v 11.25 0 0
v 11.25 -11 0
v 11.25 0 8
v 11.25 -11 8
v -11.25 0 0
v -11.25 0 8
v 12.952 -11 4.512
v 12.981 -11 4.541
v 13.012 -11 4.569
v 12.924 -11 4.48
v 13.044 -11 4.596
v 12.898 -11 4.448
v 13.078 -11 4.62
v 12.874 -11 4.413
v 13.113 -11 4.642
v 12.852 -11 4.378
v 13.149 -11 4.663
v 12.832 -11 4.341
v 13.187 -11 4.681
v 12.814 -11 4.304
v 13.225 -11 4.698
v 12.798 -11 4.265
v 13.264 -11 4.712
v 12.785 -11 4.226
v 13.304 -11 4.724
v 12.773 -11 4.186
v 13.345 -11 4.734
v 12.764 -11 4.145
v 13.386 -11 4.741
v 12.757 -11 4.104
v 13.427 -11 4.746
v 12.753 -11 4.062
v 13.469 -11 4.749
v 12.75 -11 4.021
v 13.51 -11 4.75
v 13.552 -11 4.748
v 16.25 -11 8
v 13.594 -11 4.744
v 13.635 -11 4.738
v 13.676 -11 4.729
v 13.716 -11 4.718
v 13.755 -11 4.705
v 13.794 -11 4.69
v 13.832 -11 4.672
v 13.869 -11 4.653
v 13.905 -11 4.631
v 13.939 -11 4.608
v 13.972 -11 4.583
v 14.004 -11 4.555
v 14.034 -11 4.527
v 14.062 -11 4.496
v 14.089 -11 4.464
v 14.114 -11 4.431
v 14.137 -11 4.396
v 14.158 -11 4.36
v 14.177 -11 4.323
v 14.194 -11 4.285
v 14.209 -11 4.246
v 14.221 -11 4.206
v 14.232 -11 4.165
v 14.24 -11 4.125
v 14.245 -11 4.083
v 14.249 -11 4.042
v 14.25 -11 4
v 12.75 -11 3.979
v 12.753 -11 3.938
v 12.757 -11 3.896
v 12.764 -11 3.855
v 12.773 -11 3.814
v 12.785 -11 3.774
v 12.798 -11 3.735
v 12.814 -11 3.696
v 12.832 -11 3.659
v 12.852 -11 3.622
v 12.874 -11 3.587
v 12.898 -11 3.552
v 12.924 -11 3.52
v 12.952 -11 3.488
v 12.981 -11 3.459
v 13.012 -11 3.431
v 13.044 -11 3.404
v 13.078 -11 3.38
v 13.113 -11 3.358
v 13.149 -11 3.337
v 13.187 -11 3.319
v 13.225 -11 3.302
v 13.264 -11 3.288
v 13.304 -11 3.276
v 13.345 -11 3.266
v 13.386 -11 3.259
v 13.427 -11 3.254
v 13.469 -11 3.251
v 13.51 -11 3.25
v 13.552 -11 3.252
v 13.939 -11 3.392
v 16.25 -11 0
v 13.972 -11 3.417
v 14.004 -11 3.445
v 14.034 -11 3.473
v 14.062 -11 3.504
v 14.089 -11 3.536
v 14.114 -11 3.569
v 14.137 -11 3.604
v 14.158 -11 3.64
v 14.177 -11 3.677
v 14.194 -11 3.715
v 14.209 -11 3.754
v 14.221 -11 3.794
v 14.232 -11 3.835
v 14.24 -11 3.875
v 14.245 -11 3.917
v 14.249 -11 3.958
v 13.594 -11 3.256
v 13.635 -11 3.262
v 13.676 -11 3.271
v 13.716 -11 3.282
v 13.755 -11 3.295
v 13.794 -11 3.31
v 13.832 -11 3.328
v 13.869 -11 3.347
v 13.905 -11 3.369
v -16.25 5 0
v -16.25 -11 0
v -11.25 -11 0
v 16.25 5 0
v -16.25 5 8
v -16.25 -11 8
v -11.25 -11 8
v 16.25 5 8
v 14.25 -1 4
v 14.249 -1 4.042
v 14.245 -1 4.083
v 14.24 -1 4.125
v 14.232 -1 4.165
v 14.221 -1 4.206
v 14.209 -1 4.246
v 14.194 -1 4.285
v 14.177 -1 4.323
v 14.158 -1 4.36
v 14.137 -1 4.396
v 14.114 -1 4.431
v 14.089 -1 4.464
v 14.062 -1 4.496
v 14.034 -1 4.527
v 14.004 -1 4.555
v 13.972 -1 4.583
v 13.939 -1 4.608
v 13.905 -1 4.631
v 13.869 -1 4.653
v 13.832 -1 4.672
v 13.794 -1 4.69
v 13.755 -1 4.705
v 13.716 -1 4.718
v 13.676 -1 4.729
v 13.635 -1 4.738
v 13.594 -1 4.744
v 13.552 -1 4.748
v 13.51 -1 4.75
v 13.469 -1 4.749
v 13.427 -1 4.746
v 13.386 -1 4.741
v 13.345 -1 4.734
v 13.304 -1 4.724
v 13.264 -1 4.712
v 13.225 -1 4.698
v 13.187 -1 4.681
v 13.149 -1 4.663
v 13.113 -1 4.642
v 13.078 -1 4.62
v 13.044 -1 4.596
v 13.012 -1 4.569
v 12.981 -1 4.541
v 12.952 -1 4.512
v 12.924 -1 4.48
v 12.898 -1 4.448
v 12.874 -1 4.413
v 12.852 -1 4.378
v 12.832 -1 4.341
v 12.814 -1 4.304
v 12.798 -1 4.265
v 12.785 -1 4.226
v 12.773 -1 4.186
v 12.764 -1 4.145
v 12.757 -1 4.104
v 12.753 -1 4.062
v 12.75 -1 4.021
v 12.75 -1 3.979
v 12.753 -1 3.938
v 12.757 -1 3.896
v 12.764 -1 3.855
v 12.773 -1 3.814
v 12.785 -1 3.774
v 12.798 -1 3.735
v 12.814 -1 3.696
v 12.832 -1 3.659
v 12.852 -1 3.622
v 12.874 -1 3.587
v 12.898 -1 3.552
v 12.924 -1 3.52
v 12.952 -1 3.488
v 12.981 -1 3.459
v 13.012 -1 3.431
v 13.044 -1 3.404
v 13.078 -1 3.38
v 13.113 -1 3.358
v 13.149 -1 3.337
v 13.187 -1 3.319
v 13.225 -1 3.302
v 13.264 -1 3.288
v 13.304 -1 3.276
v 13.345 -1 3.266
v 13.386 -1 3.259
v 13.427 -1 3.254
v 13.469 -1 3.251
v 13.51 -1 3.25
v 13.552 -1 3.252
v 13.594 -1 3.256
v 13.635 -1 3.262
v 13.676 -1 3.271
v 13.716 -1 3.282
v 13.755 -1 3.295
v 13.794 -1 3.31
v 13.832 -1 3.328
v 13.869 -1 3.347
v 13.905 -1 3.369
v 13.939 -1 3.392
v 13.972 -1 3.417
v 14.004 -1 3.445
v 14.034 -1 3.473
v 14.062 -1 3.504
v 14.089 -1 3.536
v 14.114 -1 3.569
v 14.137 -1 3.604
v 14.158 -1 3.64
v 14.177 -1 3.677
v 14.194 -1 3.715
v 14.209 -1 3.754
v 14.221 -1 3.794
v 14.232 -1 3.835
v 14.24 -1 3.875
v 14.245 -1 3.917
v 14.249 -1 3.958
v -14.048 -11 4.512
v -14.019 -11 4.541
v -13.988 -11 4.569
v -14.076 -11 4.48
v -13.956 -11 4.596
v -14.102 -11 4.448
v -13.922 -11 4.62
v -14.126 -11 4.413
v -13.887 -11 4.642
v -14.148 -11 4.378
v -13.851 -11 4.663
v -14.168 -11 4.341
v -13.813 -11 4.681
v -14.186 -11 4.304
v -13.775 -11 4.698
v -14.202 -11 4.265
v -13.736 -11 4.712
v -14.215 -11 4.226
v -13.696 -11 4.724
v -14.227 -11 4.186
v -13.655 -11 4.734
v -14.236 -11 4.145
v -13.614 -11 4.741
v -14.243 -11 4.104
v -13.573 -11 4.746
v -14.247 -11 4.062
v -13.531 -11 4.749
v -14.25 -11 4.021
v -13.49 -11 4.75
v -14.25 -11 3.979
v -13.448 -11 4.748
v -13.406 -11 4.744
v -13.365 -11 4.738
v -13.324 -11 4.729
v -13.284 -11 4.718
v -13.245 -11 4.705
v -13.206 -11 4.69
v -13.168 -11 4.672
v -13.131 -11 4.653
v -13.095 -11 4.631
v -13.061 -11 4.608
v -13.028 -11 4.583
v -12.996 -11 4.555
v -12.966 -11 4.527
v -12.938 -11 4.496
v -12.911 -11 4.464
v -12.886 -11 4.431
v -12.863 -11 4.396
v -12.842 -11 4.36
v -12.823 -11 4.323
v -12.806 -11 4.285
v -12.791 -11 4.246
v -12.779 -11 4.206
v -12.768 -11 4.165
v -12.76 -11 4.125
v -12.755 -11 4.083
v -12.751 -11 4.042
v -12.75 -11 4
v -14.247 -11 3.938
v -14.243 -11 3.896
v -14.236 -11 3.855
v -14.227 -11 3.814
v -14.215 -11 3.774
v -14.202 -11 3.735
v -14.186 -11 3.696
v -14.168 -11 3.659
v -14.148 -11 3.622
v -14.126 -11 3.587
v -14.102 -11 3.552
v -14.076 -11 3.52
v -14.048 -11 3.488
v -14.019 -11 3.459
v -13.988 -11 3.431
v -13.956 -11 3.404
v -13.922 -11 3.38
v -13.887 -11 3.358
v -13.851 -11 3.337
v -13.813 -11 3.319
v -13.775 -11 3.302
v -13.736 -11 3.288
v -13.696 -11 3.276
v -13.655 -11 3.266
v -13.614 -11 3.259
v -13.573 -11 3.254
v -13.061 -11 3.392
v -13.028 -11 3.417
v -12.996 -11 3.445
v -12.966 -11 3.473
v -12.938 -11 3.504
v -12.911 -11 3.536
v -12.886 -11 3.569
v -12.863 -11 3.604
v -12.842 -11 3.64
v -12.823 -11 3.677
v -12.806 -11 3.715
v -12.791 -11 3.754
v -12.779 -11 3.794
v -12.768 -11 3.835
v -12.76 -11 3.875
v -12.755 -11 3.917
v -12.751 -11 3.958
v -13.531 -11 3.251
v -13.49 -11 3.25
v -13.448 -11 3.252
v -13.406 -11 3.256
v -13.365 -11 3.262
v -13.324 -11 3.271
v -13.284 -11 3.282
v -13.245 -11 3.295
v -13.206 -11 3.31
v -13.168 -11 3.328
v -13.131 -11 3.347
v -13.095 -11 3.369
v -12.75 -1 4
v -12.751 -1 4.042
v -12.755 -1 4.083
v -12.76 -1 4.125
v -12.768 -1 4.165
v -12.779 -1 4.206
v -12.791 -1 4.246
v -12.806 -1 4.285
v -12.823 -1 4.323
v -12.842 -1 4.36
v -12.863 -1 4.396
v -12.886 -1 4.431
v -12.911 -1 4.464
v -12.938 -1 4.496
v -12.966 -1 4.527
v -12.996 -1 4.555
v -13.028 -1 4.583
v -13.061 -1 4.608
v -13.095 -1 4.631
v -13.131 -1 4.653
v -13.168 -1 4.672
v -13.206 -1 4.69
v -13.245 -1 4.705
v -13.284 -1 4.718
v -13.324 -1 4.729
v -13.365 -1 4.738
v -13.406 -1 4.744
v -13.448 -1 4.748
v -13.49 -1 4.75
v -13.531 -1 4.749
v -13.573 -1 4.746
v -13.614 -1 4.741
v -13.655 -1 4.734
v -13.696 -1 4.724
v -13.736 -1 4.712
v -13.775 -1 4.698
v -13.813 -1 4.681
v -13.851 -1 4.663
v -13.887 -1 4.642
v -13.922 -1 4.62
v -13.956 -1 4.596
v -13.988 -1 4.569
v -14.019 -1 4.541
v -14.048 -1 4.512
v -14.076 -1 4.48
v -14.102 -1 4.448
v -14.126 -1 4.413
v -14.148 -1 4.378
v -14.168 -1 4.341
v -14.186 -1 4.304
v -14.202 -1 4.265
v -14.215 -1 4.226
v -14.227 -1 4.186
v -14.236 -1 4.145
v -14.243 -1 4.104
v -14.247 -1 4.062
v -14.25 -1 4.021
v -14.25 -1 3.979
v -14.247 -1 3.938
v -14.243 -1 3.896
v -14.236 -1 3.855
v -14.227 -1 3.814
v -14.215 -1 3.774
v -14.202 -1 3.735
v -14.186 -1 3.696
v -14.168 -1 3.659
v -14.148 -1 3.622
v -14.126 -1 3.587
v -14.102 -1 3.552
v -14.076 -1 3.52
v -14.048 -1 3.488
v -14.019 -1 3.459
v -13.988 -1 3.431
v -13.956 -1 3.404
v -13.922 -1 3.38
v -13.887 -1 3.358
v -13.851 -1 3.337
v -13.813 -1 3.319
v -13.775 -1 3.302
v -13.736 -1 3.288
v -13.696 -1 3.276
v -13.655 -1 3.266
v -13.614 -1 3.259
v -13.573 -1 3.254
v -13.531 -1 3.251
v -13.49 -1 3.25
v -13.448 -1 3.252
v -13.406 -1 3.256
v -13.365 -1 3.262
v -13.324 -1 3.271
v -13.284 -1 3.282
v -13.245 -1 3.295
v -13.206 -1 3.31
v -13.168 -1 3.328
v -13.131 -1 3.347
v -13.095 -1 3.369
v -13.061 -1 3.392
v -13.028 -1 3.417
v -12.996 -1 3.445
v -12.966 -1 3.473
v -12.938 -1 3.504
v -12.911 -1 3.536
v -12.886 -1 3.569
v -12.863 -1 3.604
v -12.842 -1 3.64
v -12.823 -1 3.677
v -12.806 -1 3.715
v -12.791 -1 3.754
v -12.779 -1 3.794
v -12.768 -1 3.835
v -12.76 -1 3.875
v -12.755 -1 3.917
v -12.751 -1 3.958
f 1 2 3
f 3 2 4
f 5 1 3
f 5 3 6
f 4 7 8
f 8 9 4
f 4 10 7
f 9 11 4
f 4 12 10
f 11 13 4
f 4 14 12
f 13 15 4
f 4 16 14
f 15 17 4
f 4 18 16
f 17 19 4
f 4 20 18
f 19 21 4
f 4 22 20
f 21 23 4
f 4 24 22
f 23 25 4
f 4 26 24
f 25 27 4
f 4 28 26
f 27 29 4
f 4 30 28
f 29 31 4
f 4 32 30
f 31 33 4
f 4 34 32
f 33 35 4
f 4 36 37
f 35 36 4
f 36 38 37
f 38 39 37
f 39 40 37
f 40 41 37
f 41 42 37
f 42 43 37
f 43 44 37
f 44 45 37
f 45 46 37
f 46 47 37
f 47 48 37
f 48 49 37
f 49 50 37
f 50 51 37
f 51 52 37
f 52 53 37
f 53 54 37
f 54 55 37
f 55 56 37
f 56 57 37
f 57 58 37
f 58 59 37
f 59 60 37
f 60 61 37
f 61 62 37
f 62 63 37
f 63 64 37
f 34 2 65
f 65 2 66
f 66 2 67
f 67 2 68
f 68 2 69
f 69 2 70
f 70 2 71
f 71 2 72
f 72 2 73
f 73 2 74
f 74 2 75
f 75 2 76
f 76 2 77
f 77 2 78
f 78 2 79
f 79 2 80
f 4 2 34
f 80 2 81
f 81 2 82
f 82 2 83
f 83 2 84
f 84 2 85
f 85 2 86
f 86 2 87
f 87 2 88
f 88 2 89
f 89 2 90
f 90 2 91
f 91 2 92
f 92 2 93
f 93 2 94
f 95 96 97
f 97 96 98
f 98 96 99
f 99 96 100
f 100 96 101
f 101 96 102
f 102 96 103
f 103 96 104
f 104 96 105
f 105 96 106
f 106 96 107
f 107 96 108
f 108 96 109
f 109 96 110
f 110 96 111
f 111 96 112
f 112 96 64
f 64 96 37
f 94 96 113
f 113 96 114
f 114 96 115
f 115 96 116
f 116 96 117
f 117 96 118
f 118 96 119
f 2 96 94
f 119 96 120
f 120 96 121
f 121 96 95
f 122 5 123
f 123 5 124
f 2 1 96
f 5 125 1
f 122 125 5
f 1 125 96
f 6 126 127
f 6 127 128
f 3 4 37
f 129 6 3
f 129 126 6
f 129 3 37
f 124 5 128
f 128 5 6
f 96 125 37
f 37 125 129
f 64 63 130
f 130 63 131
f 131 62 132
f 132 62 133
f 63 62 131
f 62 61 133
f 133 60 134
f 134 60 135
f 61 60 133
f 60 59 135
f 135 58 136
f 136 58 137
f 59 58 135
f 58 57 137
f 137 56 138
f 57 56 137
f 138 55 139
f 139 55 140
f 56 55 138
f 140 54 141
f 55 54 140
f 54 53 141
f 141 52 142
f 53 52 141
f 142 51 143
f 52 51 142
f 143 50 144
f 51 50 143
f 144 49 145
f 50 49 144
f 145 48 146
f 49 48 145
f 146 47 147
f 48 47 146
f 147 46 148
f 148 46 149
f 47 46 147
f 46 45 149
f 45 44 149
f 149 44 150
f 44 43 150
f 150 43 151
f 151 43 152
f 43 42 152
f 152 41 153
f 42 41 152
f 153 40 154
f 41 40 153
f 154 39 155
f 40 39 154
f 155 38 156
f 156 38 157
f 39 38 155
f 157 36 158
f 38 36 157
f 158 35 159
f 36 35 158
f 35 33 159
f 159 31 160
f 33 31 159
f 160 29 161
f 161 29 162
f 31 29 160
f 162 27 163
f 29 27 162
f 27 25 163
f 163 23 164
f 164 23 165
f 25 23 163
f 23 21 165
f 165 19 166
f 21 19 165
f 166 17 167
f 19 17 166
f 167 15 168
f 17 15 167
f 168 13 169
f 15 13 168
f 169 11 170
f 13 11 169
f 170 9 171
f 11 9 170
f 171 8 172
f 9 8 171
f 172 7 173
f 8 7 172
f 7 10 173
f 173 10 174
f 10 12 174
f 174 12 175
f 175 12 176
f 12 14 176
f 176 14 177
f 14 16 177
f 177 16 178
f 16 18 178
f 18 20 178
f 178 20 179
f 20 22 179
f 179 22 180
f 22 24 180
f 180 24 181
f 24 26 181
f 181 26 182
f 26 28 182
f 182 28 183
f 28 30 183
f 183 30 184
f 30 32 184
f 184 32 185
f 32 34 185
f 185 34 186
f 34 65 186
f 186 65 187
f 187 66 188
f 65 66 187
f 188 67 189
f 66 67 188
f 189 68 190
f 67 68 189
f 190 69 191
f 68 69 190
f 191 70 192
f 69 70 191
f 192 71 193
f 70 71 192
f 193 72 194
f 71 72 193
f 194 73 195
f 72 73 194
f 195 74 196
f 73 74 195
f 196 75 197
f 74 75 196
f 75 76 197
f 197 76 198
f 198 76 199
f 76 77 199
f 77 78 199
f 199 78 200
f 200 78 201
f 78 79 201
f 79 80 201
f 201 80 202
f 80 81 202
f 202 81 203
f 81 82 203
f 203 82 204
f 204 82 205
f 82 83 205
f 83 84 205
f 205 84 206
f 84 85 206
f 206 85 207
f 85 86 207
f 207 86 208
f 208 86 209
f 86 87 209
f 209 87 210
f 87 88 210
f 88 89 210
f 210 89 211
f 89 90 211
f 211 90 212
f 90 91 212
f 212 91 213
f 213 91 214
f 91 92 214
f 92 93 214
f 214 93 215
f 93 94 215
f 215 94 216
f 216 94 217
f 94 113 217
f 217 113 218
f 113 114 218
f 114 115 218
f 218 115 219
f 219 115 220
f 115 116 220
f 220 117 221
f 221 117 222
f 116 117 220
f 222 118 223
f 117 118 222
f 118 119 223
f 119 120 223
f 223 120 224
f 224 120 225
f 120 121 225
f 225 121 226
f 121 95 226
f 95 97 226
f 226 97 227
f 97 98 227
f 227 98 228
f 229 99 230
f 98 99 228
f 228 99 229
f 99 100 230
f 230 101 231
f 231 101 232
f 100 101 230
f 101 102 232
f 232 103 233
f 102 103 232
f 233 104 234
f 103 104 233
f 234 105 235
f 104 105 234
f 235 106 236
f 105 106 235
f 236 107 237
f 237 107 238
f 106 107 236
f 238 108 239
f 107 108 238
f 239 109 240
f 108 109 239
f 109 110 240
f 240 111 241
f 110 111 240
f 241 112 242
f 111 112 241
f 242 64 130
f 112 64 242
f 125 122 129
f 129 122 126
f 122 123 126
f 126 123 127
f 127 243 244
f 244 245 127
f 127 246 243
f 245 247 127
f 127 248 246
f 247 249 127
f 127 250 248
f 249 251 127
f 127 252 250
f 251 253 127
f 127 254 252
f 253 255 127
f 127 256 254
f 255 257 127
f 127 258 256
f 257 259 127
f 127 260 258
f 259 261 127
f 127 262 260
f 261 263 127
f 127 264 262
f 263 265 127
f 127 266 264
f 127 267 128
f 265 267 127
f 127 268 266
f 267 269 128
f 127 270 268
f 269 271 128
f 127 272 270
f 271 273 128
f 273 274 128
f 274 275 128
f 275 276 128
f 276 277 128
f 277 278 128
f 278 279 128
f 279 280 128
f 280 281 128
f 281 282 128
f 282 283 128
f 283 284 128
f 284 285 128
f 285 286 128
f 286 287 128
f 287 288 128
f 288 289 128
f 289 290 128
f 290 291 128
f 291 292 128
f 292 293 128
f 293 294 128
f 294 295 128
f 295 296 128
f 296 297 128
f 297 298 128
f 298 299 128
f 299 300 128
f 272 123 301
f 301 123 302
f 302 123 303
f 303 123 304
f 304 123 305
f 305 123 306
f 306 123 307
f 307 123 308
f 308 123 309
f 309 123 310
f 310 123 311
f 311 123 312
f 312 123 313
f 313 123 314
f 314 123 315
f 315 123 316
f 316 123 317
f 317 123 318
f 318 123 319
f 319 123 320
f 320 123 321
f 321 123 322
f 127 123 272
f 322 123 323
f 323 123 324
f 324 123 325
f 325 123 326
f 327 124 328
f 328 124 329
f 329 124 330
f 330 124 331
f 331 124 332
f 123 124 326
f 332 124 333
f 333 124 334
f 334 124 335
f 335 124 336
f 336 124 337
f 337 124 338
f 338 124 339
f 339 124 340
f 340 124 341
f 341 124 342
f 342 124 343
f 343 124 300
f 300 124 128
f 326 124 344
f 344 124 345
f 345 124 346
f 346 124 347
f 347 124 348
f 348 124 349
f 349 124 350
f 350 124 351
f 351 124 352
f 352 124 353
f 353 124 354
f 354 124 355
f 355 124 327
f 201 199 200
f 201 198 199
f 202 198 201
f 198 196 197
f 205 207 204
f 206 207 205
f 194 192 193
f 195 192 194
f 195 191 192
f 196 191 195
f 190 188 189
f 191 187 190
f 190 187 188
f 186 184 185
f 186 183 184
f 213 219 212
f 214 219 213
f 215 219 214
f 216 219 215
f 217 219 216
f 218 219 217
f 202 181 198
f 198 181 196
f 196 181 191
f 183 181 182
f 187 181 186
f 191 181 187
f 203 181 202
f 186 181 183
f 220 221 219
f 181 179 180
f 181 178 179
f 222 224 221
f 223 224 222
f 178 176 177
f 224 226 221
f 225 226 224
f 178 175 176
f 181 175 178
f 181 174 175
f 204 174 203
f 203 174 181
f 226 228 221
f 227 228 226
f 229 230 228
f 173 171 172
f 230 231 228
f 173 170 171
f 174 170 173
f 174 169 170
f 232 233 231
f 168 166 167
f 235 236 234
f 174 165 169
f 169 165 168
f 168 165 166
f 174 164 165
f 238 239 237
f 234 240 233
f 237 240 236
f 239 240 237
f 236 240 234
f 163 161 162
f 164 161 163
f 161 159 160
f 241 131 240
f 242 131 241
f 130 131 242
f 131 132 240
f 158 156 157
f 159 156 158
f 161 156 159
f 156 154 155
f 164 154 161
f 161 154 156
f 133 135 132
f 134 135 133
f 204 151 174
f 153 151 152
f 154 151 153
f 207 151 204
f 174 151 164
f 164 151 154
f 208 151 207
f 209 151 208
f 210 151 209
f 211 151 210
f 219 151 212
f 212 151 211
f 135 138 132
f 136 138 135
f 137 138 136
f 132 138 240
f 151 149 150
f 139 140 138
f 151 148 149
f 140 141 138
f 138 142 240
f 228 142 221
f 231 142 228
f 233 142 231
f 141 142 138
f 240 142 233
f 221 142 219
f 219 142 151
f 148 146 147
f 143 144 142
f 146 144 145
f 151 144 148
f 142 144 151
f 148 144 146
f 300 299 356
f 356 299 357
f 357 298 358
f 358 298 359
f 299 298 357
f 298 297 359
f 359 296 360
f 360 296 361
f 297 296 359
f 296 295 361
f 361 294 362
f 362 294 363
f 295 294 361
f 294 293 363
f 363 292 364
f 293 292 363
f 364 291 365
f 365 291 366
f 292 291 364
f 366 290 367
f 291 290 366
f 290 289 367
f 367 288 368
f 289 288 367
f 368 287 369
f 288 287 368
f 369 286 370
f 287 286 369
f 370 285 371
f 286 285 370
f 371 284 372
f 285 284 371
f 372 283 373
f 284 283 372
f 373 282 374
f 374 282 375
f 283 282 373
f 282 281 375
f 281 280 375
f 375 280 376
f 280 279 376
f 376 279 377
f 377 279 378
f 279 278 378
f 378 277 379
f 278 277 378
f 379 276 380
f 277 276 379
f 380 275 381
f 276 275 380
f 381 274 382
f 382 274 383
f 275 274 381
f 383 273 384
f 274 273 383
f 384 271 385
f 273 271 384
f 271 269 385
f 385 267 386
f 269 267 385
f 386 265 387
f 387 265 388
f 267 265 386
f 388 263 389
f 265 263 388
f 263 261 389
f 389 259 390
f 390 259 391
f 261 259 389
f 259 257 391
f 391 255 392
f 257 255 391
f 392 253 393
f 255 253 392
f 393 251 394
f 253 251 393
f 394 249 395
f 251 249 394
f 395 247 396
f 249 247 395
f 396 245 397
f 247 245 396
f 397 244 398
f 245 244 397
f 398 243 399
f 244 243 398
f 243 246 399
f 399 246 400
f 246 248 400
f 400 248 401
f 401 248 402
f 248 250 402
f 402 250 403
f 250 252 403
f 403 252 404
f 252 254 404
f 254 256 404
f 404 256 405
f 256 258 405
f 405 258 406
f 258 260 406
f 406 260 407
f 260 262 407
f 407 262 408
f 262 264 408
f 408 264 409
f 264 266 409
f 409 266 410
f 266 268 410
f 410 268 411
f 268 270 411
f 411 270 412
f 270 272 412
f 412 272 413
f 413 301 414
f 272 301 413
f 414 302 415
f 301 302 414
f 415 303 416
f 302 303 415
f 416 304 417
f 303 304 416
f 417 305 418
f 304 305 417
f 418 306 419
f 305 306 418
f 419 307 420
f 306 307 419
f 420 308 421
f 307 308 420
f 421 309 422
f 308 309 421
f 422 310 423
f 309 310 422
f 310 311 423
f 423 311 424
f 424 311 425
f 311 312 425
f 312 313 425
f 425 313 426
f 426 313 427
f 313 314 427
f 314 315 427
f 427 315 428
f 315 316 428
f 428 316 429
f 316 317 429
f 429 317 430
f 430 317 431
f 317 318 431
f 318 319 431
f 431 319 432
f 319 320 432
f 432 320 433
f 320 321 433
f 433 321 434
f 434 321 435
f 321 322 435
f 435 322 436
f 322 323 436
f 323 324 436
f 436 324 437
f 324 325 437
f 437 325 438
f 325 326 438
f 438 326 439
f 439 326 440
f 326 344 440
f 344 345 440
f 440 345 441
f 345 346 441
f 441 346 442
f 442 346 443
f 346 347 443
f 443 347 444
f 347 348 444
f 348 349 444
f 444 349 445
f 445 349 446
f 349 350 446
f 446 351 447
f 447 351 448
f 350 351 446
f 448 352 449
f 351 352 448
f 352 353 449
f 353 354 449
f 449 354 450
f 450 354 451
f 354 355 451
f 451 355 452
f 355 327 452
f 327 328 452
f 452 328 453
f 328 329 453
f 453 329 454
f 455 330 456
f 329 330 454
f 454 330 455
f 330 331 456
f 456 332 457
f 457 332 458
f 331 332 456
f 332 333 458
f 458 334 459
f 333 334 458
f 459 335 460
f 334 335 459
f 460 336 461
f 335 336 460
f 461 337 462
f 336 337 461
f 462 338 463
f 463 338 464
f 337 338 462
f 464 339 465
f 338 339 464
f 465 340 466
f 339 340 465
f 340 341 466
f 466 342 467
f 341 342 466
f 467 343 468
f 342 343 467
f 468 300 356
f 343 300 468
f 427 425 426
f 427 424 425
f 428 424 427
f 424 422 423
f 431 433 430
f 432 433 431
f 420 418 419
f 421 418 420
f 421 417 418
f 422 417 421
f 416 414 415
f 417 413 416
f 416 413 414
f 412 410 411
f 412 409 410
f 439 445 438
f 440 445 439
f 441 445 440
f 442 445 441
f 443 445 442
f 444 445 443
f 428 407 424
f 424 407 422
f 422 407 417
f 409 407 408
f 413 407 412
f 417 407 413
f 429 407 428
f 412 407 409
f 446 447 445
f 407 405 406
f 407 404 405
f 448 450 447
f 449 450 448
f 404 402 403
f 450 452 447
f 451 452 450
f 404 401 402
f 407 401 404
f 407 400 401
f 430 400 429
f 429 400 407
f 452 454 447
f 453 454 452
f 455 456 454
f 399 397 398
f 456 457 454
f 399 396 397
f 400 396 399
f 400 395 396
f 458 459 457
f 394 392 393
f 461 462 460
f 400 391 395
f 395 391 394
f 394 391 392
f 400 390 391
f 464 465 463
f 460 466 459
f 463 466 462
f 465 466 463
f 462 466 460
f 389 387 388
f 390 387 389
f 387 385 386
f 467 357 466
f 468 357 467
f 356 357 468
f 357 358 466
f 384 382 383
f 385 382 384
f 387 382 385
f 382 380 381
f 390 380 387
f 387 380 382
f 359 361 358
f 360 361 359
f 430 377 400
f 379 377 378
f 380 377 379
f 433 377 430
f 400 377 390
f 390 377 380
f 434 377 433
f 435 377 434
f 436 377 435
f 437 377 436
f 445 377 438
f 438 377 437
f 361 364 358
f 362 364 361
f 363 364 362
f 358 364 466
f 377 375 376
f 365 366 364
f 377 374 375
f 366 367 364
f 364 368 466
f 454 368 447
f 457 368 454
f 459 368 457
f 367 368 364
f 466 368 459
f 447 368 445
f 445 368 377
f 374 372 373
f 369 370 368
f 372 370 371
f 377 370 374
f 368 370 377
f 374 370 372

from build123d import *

# Parameters (mm, degrees)
PAD_DEPTH    = 8
SKETCH001_R  = 0.75
POCKET_DEPTH = 10


with BuildPart() as part:
    # Sketch → Pad (new body)
    with BuildSketch(Plane.XY):
        Polygon((11.25, 0), (11.25, -11), (16.25, -11), (16.25, 5), (-16.25, 5), (-16.25, -11), (-11.25, -11), (-11.25, 0), align=None)
    extrude(amount=PAD_DEPTH)

    # Sketch001 (on Face6 of Pad) → Pocket (cut)
    with BuildSketch(Plane.XZ.offset(11)):
        with Locations((-13.5, 4)):
            Circle(SKETCH001_R)
        with Locations((13.5, 4)):
            Circle(SKETCH001_R)
    extrude(amount=-POCKET_DEPTH, mode=Mode.SUBTRACT)


solid = part.part
